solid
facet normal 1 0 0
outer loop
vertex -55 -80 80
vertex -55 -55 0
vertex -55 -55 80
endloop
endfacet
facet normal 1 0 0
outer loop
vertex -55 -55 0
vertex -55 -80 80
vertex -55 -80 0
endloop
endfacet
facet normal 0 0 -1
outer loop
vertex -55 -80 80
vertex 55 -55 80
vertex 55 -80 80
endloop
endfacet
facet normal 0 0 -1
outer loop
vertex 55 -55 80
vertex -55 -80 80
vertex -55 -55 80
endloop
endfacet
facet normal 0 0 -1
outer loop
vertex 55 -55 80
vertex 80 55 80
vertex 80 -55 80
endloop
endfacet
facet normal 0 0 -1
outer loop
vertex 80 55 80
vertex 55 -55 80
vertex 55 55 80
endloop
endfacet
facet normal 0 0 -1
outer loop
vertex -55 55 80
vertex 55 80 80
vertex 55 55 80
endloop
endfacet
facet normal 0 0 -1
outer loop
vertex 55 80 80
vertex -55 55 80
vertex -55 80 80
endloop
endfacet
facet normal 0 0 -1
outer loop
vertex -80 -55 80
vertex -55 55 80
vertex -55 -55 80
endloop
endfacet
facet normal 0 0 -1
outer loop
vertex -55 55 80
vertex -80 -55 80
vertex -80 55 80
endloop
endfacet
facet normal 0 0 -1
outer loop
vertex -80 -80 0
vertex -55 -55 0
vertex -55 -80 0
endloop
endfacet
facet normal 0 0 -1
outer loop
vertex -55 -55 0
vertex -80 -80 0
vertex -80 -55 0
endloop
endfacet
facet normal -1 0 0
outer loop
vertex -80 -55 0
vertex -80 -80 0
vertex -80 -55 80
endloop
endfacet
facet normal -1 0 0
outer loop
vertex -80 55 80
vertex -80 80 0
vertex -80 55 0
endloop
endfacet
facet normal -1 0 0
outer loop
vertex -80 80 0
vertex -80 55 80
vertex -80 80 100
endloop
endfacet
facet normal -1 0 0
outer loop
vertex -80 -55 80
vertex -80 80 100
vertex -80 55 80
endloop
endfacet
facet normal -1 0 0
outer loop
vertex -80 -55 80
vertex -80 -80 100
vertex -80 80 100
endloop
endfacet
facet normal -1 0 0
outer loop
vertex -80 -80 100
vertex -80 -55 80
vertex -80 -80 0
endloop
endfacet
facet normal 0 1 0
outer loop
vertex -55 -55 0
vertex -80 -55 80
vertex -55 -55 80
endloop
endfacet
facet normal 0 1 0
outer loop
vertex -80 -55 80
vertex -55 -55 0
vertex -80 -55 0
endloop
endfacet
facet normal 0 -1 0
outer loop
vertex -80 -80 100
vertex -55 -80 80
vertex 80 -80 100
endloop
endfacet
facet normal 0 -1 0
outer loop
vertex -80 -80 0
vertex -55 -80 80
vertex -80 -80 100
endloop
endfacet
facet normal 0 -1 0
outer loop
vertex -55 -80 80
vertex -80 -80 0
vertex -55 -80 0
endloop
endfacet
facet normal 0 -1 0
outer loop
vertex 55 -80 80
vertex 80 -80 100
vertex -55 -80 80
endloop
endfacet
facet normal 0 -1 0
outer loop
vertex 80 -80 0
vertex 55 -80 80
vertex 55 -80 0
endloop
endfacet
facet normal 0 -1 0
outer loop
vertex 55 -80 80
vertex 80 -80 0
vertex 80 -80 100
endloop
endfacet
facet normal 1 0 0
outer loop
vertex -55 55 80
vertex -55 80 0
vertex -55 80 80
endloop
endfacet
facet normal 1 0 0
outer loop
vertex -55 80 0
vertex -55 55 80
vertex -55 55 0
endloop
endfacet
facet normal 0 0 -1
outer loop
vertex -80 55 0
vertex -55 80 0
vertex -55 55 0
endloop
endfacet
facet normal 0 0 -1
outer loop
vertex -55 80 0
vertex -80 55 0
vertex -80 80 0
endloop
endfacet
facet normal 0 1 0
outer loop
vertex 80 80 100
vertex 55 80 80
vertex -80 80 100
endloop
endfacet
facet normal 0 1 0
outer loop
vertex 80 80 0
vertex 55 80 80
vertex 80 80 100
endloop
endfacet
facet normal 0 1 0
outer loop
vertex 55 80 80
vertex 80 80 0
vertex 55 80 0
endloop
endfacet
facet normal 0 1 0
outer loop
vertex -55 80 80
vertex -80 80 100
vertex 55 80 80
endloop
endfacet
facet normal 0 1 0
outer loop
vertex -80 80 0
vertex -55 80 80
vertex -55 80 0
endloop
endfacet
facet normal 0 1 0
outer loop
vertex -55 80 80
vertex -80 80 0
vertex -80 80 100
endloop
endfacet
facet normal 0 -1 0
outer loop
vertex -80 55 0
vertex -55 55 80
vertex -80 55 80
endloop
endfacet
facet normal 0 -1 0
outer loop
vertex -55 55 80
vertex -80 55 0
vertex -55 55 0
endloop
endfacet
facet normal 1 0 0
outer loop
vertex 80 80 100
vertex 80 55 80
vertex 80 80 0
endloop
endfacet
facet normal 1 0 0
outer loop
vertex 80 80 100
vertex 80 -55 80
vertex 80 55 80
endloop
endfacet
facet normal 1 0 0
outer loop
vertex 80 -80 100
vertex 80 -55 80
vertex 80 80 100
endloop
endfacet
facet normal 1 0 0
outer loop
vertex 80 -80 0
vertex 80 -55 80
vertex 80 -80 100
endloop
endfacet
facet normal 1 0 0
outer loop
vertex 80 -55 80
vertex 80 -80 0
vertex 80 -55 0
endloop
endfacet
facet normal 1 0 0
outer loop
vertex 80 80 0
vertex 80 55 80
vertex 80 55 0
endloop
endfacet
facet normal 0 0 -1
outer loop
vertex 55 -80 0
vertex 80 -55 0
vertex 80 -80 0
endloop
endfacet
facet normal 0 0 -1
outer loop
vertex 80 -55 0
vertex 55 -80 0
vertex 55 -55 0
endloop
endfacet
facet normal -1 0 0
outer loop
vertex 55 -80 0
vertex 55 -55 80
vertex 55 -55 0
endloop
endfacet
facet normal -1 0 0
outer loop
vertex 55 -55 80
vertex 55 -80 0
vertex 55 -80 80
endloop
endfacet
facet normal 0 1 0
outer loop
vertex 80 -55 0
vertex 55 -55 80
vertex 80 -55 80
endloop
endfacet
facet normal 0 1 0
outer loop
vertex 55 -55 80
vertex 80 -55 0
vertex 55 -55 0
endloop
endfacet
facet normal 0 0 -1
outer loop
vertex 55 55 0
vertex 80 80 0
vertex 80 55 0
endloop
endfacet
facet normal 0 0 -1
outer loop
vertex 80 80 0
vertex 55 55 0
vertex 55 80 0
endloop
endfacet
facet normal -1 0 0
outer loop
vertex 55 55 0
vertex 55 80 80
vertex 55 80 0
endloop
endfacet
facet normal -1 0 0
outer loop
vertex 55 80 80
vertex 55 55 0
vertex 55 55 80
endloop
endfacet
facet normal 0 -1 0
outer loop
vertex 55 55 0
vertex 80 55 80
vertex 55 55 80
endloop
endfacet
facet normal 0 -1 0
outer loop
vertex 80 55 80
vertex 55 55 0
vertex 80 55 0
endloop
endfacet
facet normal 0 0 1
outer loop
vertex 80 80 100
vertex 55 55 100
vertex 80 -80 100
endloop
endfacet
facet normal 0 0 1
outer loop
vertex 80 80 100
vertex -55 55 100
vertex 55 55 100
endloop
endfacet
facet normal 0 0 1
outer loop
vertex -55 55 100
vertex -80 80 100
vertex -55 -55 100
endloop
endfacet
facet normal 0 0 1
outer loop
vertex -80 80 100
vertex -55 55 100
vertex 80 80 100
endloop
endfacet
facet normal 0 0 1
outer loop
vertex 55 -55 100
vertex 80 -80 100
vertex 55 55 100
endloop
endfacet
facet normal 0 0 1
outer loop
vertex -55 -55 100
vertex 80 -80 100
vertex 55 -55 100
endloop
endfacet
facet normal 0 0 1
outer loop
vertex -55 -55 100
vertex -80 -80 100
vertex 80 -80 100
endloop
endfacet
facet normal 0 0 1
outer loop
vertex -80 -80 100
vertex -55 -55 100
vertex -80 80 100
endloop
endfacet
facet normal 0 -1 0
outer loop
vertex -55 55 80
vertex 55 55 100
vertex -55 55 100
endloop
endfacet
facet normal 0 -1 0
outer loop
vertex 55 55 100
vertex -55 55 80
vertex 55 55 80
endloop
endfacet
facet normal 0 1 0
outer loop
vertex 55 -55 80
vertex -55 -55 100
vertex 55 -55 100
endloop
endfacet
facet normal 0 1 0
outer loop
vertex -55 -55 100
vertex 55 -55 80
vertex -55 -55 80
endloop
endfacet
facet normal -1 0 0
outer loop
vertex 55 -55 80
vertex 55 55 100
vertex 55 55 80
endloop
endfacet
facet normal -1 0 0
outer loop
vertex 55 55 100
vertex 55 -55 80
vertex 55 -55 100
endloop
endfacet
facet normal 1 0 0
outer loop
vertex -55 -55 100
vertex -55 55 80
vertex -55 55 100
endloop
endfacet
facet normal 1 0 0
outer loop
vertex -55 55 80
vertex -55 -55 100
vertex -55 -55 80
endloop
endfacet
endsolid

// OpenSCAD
// ============================================================
//  Podest – parametrisch
//  Alle Maße in Millimetern
//  Ursprung: Mitte der Grundfläche, Unterkante Z=0
// ============================================================

// --- Parameter ---
hoehe      = 100;  // Gesamthöhe des Podests
flaeche    = 160;  // Seitenlänge der quadratischen Grundfläche
oeffnung   = 110;  // Seitenlänge der quadratischen Öffnung in der Deckplatte

// --- Abgeleitete Werte ---
fuss_dicke =  (flaeche - oeffnung) /  2;  // Quadratischer Querschnitt der vier Füsse
wandstaerke = (flaeche - oeffnung) / 2 ;
deckel_h    = max(20, hoehe * 0.04);
fuss_h      = hoehe - deckel_h;

// Außenkante der Füsse bündig mit Außenkante der Grundfläche.
// Mittelpunkt jedes Fusses in XY:
fuss_mitte  = flaeche / 2 - fuss_dicke / 2;

// ============================================================
//  Hilfsfunktion: Quader, zentriert in XY, Z startet bei z_base
// ============================================================
module quader(cx, cy, z_base, w, d, h) {
    translate([cx - w/2, cy - d/2, z_base])
        cube([w, d, h]);
}

// ============================================================
//  Fuesse – vier Ecken, Aussenkanten bündig mit Grundflaeche
// ============================================================
module fuesse() {
    for (sx = [-1, 1], sy = [-1, 1]) {
        quader(sx * fuss_mitte, sy * fuss_mitte, 0,
               fuss_dicke, fuss_dicke, fuss_h);
    }
}

// ============================================================
//  Deckplatte mit quadratischer Oeffnung
//  4 Planken, lueckenlos, keine Ueberlappungen:
//    vorne/hinten : volle Breite (flaeche), Tiefe = wandstaerke
//    links/rechts : Breite = wandstaerke, Tiefe = oeffnung
// ============================================================
module deckplatte() {
    // Vordere Planke  (Aussenkante bei Y = +flaeche/2)
    quader(0,  flaeche/2 - wandstaerke/2, fuss_h,
           flaeche, wandstaerke, deckel_h);

    // Hintere Planke  (Aussenkante bei Y = -flaeche/2)
    quader(0, -flaeche/2 + wandstaerke/2, fuss_h,
           flaeche, wandstaerke, deckel_h);

    // Rechte Planke   (Aussenkante bei X = +flaeche/2)
    quader( flaeche/2 - wandstaerke/2, 0, fuss_h,
            wandstaerke, oeffnung, deckel_h);

    // Linke Planke    (Aussenkante bei X = -flaeche/2)
    quader(-flaeche/2 + wandstaerke/2, 0, fuss_h,
            wandstaerke, oeffnung, deckel_h);
}

// ============================================================
//  Zusammenbau
// ============================================================
fuesse();
deckplatte();
